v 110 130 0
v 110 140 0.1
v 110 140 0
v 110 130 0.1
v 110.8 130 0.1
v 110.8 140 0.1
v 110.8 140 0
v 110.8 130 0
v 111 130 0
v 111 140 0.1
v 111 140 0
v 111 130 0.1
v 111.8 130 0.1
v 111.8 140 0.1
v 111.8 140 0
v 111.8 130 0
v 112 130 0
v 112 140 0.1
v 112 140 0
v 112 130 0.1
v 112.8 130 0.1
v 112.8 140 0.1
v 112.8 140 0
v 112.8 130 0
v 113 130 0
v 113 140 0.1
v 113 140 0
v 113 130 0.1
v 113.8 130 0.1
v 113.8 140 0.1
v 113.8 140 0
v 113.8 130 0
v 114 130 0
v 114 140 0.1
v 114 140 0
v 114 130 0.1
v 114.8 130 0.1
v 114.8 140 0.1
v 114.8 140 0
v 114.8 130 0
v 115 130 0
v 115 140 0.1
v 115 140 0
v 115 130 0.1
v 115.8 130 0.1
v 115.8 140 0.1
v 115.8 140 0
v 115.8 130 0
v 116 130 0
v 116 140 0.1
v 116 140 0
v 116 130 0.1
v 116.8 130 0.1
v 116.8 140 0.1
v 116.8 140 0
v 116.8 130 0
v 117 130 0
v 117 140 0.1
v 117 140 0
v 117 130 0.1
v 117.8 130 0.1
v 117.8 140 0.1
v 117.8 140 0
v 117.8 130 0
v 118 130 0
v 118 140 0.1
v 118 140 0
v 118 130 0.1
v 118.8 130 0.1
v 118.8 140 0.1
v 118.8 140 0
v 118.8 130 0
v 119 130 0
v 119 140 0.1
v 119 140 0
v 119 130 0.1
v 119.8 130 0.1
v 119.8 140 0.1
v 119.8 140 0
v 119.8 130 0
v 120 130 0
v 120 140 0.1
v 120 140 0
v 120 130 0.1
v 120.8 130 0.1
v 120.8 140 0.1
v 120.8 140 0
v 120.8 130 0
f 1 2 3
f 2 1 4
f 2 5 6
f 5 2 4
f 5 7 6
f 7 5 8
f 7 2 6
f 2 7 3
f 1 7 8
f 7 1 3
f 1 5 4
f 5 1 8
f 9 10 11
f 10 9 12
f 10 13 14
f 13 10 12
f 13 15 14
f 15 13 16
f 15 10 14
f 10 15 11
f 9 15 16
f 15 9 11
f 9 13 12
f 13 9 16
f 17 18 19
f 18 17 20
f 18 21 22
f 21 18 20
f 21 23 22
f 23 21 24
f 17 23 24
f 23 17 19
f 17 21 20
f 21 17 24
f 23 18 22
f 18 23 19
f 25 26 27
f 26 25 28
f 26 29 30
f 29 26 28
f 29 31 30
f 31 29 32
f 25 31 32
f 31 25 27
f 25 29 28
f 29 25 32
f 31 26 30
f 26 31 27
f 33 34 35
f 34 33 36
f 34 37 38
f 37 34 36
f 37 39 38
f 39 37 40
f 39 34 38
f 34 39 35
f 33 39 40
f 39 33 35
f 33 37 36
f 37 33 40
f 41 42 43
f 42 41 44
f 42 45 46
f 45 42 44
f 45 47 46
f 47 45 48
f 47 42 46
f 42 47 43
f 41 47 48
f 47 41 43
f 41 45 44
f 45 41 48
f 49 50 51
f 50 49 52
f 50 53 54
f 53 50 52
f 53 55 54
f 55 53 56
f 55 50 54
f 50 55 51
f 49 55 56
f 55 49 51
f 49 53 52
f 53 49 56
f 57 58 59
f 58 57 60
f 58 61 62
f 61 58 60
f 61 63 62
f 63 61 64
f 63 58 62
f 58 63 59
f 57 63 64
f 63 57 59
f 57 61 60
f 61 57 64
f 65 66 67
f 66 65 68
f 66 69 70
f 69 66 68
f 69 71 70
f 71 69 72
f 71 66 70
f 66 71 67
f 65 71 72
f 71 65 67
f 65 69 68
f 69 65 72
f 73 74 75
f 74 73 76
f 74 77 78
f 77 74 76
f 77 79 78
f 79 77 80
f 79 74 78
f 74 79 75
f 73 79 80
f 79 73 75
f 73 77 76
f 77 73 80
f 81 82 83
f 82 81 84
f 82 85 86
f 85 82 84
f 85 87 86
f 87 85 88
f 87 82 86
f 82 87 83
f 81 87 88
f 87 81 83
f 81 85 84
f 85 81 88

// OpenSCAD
translate([10+100,10+120,0])
        for (i = [0 : 10]){
            translate([i,0,0])
                cube(size = [0.8,10,0.1]);
    }
